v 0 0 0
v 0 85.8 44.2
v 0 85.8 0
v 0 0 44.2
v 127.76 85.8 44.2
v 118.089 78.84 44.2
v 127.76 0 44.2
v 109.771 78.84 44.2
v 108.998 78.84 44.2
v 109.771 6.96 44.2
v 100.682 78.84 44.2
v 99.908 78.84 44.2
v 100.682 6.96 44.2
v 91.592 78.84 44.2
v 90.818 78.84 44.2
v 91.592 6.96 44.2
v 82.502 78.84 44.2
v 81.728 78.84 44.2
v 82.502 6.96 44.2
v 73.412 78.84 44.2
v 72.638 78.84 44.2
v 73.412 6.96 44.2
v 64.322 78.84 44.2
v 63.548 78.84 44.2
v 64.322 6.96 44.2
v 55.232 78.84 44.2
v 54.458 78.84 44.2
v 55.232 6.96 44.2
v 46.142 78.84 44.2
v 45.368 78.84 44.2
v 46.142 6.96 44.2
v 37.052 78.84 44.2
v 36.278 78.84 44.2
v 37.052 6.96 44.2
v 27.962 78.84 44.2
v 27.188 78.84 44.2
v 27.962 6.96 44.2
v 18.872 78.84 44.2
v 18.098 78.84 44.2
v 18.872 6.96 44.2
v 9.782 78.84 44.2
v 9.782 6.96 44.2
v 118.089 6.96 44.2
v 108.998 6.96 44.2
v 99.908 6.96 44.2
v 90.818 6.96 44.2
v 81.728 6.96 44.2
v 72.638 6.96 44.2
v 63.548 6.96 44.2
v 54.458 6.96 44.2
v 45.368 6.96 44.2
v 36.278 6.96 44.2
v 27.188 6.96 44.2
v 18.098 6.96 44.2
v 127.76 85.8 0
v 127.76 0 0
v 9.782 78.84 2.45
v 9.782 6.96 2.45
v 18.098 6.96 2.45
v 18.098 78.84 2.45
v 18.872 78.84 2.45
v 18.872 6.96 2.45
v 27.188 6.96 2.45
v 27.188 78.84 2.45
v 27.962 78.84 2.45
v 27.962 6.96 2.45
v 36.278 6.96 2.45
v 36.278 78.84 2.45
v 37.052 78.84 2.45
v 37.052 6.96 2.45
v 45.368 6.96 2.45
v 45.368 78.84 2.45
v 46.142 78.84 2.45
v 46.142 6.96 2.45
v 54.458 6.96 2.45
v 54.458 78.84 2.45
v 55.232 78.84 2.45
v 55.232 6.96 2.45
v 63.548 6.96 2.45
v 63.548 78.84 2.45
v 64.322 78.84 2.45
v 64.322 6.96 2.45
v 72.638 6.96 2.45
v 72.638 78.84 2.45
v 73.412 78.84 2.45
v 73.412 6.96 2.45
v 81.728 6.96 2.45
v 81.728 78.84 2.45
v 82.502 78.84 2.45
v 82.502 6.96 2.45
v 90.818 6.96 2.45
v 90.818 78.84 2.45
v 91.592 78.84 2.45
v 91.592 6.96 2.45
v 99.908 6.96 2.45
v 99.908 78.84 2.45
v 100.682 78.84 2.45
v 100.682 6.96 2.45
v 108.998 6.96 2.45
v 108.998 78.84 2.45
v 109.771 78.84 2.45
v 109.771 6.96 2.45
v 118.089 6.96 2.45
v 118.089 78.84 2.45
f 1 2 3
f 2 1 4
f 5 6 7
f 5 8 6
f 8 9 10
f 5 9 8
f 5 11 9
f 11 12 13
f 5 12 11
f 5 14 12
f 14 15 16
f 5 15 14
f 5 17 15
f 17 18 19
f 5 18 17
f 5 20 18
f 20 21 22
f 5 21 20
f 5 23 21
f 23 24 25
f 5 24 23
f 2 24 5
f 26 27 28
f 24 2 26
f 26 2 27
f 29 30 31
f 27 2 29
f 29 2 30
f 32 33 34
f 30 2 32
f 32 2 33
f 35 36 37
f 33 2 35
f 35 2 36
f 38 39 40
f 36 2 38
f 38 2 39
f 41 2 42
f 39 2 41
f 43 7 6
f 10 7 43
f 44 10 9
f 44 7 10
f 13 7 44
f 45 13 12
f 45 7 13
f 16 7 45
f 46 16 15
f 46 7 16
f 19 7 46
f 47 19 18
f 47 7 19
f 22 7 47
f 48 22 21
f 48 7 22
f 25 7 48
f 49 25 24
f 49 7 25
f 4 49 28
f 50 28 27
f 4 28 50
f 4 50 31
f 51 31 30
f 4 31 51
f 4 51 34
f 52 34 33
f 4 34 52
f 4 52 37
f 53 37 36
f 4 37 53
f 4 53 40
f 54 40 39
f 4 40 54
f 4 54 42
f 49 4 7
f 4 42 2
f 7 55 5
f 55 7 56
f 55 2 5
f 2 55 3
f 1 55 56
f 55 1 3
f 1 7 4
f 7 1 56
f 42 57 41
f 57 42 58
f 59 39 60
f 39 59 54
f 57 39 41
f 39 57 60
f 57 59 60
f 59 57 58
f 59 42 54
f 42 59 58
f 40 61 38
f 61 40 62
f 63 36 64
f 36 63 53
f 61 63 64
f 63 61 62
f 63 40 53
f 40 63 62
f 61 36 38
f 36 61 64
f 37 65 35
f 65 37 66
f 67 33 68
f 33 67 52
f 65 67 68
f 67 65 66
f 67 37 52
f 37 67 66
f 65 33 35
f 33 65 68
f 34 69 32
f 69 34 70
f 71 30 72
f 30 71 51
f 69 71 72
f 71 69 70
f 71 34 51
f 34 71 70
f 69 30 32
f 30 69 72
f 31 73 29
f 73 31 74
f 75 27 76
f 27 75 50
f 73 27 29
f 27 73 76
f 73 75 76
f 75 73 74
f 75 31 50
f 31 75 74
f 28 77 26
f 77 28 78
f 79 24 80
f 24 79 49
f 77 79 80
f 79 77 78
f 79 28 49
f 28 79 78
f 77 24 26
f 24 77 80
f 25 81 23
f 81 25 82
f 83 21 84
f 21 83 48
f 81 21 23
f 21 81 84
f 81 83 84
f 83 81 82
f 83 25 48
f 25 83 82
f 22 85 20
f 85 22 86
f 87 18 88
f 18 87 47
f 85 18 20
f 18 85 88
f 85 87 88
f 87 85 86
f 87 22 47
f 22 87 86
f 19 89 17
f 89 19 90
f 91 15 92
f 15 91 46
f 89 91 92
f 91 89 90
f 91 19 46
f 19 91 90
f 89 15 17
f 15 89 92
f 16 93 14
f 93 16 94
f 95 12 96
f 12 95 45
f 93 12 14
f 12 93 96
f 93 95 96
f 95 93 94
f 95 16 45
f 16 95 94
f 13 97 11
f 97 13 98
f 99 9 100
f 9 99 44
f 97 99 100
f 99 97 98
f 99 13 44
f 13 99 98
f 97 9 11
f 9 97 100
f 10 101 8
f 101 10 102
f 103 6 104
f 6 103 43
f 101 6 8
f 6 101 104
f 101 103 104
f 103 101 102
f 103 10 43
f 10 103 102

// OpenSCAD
// USA Scientific 12 Well Reservoir 22 mL
// loadName: usascientific_12_reservoir_22ml
// Auto-generated by labware_to_stl.py from Opentrons V2 labware definition

$fn = 64;

difference() {
    // ── Labware body ──────────────────────────────────────────────
    cube([127.7600, 85.8000, 44.2000]);

    // ── Well cutouts ──────────────────────────────────────────────
    // Well A1
    translate([9.7815, 6.9600, 2.4500])
        cube([8.3170, 71.8800, 42.7500]);
    // Well A2
    translate([18.8715, 6.9600, 2.4500])
        cube([8.3170, 71.8800, 42.7500]);
    // Well A3
    translate([27.9615, 6.9600, 2.4500])
        cube([8.3170, 71.8800, 42.7500]);
    // Well A4
    translate([37.0515, 6.9600, 2.4500])
        cube([8.3170, 71.8800, 42.7500]);
    // Well A5
    translate([46.1415, 6.9600, 2.4500])
        cube([8.3170, 71.8800, 42.7500]);
    // Well A6
    translate([55.2315, 6.9600, 2.4500])
        cube([8.3170, 71.8800, 42.7500]);
    // Well A7
    translate([64.3215, 6.9600, 2.4500])
        cube([8.3170, 71.8800, 42.7500]);
    // Well A8
    translate([73.4115, 6.9600, 2.4500])
        cube([8.3170, 71.8800, 42.7500]);
    // Well A9
    translate([82.5015, 6.9600, 2.4500])
        cube([8.3170, 71.8800, 42.7500]);
    // Well A10
    translate([91.5915, 6.9600, 2.4500])
        cube([8.3170, 71.8800, 42.7500]);
    // Well A11
    translate([100.6815, 6.9600, 2.4500])
        cube([8.3170, 71.8800, 42.7500]);
    // Well A12
    translate([109.7715, 6.9600, 2.4500])
        cube([8.3170, 71.8800, 42.7500]);
}
